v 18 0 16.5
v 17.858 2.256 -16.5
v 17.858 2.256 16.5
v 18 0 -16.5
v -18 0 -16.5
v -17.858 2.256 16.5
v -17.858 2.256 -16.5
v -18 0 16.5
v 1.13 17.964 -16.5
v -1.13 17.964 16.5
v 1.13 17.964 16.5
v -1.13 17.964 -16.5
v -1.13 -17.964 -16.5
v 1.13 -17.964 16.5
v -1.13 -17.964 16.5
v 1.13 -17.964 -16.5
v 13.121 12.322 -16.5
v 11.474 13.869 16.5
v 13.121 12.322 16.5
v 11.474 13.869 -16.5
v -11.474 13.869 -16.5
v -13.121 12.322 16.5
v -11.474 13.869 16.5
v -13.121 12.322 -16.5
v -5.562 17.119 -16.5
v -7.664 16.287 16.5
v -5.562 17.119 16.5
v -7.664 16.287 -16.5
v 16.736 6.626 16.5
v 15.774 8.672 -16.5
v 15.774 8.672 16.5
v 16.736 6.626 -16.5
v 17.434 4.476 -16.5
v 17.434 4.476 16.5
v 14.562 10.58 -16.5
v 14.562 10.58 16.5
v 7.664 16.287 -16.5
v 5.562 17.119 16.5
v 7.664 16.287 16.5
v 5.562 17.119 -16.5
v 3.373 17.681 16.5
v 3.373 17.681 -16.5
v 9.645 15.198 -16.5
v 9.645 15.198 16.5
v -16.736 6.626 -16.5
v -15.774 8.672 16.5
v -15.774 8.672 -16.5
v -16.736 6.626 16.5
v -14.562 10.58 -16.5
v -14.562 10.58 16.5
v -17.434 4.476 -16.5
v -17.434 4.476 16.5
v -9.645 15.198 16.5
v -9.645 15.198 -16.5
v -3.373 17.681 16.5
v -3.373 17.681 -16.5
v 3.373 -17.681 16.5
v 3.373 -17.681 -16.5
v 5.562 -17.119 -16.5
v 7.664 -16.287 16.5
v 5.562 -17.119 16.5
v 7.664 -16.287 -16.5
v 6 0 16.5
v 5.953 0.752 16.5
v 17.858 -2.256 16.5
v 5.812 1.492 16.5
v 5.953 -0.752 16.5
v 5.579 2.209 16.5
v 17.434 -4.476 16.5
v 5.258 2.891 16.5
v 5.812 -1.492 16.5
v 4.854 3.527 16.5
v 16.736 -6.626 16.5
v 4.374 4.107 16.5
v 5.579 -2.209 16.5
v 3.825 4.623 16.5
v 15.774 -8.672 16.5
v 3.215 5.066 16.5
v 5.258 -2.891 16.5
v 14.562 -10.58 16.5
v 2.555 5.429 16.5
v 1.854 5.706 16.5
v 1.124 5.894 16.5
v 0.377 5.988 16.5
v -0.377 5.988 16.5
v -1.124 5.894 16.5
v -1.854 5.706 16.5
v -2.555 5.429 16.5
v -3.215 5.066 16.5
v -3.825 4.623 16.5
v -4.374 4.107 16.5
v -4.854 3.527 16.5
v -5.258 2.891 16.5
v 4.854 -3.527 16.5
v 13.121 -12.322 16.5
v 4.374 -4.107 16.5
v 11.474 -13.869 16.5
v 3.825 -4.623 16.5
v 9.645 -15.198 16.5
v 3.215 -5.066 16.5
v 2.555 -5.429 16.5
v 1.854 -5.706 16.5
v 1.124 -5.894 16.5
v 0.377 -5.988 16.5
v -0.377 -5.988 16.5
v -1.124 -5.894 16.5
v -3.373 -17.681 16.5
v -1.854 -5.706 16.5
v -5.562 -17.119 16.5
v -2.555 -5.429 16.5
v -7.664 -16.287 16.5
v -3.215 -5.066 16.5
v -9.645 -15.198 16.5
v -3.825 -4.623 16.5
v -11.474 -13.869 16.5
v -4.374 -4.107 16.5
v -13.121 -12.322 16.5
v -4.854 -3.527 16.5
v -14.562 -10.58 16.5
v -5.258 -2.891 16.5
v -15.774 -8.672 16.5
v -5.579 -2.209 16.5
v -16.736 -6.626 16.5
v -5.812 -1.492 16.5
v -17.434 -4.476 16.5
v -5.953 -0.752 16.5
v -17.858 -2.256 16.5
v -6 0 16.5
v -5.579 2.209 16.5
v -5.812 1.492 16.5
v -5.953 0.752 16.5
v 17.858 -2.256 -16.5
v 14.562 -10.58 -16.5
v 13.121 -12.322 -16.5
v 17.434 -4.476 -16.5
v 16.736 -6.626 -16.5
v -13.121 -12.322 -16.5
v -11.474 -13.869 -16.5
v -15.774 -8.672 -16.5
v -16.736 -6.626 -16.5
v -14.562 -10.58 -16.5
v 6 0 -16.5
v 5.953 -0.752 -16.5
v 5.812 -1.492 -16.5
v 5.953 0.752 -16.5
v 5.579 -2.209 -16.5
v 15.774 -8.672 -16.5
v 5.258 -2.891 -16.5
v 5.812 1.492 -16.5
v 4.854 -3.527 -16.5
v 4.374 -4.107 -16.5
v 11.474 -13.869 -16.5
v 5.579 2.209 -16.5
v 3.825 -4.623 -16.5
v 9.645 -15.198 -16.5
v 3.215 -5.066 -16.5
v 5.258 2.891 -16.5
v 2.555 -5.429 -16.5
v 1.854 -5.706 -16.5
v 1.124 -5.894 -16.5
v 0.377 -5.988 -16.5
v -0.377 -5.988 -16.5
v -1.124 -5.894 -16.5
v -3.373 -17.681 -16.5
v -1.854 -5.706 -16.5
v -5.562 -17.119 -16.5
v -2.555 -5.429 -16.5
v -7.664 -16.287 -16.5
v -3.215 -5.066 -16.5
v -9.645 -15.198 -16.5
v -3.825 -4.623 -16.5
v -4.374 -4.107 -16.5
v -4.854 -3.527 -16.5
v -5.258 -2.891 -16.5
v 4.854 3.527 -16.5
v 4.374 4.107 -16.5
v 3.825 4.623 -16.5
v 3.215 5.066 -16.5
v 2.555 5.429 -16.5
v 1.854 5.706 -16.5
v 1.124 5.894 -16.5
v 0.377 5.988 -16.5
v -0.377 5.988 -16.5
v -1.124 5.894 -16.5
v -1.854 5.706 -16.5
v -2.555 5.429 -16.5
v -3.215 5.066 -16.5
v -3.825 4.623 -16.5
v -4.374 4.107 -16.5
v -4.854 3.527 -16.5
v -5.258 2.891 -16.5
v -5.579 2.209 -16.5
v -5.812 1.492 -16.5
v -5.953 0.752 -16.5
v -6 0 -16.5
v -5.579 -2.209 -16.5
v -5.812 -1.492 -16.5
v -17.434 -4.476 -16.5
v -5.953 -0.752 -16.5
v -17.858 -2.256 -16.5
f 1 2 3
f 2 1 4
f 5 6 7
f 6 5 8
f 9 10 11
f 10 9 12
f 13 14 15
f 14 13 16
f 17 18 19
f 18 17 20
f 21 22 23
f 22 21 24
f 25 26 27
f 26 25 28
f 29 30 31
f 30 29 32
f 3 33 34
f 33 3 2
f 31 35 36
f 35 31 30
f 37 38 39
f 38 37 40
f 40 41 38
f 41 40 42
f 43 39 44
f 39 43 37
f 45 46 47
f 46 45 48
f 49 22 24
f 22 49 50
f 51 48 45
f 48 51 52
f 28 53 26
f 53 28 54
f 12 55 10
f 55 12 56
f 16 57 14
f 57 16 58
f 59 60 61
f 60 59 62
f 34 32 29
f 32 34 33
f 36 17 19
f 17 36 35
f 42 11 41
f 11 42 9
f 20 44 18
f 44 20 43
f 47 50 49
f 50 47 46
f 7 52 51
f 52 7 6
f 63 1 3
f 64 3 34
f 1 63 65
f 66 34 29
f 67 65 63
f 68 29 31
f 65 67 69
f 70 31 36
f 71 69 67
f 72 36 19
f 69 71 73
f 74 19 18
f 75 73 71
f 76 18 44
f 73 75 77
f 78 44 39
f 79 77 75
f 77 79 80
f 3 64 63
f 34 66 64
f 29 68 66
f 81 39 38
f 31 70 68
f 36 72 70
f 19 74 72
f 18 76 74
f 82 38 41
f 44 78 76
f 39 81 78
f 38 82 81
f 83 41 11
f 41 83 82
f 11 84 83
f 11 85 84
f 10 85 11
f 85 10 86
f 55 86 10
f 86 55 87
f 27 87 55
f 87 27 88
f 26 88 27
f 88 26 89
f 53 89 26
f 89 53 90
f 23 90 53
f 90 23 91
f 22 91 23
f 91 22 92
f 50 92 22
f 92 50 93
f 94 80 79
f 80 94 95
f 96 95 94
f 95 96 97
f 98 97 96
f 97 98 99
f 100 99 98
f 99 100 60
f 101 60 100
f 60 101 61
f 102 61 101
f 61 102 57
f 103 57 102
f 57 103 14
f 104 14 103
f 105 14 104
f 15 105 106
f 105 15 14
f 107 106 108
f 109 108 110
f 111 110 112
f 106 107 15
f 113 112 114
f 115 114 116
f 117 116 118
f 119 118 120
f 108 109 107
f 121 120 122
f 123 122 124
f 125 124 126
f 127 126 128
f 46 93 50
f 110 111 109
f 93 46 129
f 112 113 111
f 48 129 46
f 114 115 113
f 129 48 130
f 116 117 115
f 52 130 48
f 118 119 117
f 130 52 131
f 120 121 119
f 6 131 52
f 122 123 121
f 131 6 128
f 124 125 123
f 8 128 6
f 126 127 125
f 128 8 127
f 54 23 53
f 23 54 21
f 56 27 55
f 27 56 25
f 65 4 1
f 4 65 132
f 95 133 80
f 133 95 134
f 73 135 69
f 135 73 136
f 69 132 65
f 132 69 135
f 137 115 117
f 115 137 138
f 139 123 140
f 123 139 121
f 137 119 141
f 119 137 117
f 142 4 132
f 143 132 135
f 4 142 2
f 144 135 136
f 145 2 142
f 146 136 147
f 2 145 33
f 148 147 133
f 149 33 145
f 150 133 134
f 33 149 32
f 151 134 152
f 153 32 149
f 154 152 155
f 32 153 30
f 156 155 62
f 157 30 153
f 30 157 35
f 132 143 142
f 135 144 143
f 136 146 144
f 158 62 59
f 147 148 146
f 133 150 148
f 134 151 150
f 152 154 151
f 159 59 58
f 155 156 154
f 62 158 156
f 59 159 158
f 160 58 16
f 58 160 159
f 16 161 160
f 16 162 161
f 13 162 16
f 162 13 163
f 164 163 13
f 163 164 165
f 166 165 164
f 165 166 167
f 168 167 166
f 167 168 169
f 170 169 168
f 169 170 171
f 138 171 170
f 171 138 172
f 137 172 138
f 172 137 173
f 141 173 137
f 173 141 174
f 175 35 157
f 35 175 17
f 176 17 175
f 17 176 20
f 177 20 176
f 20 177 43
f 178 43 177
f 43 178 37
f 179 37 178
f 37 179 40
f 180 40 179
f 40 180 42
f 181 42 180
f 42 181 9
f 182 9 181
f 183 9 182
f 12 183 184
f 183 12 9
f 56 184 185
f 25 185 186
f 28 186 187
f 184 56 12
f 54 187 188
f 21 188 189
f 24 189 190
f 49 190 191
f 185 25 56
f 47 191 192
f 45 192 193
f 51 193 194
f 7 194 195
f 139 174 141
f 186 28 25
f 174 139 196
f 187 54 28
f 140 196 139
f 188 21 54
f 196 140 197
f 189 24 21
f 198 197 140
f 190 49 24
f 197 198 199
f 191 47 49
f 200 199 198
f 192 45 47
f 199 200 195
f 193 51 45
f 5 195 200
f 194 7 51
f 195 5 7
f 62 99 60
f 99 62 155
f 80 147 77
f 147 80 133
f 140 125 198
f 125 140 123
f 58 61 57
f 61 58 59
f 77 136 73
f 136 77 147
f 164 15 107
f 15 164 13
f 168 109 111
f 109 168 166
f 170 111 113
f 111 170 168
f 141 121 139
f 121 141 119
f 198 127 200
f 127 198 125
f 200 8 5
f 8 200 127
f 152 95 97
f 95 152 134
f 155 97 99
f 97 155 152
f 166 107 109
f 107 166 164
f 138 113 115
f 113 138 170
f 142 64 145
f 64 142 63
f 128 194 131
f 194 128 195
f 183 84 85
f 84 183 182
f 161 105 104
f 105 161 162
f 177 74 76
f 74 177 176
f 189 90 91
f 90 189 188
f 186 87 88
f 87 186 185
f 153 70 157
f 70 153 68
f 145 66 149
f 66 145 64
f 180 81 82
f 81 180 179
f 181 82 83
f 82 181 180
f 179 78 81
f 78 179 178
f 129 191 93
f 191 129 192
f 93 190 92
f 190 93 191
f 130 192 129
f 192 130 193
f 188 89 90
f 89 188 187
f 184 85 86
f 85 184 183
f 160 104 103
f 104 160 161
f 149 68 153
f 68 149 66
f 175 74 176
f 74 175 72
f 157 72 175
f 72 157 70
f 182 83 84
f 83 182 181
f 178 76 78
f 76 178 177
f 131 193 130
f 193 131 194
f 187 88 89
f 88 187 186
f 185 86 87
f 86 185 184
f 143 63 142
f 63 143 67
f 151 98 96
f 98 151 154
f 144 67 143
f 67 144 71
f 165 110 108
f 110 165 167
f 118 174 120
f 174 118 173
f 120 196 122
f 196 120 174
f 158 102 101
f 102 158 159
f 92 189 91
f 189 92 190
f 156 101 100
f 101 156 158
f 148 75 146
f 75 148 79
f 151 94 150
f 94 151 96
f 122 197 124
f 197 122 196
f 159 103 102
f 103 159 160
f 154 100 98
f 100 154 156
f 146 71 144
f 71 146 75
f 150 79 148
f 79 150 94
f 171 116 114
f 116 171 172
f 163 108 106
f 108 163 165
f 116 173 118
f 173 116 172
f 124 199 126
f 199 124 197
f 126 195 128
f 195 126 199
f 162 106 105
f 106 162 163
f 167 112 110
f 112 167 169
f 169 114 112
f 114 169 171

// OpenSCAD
$fn = 50;


difference() {
	union() {
		translate(v = [0, 0, -16.5000000000]) {
			cylinder(h = 33, r = 18.0000000000);
		}
	}
	union() {
		translate(v = [0, 0, -100.0000000000]) {
			cylinder(h = 200, r = 6);
		}
	}
}
